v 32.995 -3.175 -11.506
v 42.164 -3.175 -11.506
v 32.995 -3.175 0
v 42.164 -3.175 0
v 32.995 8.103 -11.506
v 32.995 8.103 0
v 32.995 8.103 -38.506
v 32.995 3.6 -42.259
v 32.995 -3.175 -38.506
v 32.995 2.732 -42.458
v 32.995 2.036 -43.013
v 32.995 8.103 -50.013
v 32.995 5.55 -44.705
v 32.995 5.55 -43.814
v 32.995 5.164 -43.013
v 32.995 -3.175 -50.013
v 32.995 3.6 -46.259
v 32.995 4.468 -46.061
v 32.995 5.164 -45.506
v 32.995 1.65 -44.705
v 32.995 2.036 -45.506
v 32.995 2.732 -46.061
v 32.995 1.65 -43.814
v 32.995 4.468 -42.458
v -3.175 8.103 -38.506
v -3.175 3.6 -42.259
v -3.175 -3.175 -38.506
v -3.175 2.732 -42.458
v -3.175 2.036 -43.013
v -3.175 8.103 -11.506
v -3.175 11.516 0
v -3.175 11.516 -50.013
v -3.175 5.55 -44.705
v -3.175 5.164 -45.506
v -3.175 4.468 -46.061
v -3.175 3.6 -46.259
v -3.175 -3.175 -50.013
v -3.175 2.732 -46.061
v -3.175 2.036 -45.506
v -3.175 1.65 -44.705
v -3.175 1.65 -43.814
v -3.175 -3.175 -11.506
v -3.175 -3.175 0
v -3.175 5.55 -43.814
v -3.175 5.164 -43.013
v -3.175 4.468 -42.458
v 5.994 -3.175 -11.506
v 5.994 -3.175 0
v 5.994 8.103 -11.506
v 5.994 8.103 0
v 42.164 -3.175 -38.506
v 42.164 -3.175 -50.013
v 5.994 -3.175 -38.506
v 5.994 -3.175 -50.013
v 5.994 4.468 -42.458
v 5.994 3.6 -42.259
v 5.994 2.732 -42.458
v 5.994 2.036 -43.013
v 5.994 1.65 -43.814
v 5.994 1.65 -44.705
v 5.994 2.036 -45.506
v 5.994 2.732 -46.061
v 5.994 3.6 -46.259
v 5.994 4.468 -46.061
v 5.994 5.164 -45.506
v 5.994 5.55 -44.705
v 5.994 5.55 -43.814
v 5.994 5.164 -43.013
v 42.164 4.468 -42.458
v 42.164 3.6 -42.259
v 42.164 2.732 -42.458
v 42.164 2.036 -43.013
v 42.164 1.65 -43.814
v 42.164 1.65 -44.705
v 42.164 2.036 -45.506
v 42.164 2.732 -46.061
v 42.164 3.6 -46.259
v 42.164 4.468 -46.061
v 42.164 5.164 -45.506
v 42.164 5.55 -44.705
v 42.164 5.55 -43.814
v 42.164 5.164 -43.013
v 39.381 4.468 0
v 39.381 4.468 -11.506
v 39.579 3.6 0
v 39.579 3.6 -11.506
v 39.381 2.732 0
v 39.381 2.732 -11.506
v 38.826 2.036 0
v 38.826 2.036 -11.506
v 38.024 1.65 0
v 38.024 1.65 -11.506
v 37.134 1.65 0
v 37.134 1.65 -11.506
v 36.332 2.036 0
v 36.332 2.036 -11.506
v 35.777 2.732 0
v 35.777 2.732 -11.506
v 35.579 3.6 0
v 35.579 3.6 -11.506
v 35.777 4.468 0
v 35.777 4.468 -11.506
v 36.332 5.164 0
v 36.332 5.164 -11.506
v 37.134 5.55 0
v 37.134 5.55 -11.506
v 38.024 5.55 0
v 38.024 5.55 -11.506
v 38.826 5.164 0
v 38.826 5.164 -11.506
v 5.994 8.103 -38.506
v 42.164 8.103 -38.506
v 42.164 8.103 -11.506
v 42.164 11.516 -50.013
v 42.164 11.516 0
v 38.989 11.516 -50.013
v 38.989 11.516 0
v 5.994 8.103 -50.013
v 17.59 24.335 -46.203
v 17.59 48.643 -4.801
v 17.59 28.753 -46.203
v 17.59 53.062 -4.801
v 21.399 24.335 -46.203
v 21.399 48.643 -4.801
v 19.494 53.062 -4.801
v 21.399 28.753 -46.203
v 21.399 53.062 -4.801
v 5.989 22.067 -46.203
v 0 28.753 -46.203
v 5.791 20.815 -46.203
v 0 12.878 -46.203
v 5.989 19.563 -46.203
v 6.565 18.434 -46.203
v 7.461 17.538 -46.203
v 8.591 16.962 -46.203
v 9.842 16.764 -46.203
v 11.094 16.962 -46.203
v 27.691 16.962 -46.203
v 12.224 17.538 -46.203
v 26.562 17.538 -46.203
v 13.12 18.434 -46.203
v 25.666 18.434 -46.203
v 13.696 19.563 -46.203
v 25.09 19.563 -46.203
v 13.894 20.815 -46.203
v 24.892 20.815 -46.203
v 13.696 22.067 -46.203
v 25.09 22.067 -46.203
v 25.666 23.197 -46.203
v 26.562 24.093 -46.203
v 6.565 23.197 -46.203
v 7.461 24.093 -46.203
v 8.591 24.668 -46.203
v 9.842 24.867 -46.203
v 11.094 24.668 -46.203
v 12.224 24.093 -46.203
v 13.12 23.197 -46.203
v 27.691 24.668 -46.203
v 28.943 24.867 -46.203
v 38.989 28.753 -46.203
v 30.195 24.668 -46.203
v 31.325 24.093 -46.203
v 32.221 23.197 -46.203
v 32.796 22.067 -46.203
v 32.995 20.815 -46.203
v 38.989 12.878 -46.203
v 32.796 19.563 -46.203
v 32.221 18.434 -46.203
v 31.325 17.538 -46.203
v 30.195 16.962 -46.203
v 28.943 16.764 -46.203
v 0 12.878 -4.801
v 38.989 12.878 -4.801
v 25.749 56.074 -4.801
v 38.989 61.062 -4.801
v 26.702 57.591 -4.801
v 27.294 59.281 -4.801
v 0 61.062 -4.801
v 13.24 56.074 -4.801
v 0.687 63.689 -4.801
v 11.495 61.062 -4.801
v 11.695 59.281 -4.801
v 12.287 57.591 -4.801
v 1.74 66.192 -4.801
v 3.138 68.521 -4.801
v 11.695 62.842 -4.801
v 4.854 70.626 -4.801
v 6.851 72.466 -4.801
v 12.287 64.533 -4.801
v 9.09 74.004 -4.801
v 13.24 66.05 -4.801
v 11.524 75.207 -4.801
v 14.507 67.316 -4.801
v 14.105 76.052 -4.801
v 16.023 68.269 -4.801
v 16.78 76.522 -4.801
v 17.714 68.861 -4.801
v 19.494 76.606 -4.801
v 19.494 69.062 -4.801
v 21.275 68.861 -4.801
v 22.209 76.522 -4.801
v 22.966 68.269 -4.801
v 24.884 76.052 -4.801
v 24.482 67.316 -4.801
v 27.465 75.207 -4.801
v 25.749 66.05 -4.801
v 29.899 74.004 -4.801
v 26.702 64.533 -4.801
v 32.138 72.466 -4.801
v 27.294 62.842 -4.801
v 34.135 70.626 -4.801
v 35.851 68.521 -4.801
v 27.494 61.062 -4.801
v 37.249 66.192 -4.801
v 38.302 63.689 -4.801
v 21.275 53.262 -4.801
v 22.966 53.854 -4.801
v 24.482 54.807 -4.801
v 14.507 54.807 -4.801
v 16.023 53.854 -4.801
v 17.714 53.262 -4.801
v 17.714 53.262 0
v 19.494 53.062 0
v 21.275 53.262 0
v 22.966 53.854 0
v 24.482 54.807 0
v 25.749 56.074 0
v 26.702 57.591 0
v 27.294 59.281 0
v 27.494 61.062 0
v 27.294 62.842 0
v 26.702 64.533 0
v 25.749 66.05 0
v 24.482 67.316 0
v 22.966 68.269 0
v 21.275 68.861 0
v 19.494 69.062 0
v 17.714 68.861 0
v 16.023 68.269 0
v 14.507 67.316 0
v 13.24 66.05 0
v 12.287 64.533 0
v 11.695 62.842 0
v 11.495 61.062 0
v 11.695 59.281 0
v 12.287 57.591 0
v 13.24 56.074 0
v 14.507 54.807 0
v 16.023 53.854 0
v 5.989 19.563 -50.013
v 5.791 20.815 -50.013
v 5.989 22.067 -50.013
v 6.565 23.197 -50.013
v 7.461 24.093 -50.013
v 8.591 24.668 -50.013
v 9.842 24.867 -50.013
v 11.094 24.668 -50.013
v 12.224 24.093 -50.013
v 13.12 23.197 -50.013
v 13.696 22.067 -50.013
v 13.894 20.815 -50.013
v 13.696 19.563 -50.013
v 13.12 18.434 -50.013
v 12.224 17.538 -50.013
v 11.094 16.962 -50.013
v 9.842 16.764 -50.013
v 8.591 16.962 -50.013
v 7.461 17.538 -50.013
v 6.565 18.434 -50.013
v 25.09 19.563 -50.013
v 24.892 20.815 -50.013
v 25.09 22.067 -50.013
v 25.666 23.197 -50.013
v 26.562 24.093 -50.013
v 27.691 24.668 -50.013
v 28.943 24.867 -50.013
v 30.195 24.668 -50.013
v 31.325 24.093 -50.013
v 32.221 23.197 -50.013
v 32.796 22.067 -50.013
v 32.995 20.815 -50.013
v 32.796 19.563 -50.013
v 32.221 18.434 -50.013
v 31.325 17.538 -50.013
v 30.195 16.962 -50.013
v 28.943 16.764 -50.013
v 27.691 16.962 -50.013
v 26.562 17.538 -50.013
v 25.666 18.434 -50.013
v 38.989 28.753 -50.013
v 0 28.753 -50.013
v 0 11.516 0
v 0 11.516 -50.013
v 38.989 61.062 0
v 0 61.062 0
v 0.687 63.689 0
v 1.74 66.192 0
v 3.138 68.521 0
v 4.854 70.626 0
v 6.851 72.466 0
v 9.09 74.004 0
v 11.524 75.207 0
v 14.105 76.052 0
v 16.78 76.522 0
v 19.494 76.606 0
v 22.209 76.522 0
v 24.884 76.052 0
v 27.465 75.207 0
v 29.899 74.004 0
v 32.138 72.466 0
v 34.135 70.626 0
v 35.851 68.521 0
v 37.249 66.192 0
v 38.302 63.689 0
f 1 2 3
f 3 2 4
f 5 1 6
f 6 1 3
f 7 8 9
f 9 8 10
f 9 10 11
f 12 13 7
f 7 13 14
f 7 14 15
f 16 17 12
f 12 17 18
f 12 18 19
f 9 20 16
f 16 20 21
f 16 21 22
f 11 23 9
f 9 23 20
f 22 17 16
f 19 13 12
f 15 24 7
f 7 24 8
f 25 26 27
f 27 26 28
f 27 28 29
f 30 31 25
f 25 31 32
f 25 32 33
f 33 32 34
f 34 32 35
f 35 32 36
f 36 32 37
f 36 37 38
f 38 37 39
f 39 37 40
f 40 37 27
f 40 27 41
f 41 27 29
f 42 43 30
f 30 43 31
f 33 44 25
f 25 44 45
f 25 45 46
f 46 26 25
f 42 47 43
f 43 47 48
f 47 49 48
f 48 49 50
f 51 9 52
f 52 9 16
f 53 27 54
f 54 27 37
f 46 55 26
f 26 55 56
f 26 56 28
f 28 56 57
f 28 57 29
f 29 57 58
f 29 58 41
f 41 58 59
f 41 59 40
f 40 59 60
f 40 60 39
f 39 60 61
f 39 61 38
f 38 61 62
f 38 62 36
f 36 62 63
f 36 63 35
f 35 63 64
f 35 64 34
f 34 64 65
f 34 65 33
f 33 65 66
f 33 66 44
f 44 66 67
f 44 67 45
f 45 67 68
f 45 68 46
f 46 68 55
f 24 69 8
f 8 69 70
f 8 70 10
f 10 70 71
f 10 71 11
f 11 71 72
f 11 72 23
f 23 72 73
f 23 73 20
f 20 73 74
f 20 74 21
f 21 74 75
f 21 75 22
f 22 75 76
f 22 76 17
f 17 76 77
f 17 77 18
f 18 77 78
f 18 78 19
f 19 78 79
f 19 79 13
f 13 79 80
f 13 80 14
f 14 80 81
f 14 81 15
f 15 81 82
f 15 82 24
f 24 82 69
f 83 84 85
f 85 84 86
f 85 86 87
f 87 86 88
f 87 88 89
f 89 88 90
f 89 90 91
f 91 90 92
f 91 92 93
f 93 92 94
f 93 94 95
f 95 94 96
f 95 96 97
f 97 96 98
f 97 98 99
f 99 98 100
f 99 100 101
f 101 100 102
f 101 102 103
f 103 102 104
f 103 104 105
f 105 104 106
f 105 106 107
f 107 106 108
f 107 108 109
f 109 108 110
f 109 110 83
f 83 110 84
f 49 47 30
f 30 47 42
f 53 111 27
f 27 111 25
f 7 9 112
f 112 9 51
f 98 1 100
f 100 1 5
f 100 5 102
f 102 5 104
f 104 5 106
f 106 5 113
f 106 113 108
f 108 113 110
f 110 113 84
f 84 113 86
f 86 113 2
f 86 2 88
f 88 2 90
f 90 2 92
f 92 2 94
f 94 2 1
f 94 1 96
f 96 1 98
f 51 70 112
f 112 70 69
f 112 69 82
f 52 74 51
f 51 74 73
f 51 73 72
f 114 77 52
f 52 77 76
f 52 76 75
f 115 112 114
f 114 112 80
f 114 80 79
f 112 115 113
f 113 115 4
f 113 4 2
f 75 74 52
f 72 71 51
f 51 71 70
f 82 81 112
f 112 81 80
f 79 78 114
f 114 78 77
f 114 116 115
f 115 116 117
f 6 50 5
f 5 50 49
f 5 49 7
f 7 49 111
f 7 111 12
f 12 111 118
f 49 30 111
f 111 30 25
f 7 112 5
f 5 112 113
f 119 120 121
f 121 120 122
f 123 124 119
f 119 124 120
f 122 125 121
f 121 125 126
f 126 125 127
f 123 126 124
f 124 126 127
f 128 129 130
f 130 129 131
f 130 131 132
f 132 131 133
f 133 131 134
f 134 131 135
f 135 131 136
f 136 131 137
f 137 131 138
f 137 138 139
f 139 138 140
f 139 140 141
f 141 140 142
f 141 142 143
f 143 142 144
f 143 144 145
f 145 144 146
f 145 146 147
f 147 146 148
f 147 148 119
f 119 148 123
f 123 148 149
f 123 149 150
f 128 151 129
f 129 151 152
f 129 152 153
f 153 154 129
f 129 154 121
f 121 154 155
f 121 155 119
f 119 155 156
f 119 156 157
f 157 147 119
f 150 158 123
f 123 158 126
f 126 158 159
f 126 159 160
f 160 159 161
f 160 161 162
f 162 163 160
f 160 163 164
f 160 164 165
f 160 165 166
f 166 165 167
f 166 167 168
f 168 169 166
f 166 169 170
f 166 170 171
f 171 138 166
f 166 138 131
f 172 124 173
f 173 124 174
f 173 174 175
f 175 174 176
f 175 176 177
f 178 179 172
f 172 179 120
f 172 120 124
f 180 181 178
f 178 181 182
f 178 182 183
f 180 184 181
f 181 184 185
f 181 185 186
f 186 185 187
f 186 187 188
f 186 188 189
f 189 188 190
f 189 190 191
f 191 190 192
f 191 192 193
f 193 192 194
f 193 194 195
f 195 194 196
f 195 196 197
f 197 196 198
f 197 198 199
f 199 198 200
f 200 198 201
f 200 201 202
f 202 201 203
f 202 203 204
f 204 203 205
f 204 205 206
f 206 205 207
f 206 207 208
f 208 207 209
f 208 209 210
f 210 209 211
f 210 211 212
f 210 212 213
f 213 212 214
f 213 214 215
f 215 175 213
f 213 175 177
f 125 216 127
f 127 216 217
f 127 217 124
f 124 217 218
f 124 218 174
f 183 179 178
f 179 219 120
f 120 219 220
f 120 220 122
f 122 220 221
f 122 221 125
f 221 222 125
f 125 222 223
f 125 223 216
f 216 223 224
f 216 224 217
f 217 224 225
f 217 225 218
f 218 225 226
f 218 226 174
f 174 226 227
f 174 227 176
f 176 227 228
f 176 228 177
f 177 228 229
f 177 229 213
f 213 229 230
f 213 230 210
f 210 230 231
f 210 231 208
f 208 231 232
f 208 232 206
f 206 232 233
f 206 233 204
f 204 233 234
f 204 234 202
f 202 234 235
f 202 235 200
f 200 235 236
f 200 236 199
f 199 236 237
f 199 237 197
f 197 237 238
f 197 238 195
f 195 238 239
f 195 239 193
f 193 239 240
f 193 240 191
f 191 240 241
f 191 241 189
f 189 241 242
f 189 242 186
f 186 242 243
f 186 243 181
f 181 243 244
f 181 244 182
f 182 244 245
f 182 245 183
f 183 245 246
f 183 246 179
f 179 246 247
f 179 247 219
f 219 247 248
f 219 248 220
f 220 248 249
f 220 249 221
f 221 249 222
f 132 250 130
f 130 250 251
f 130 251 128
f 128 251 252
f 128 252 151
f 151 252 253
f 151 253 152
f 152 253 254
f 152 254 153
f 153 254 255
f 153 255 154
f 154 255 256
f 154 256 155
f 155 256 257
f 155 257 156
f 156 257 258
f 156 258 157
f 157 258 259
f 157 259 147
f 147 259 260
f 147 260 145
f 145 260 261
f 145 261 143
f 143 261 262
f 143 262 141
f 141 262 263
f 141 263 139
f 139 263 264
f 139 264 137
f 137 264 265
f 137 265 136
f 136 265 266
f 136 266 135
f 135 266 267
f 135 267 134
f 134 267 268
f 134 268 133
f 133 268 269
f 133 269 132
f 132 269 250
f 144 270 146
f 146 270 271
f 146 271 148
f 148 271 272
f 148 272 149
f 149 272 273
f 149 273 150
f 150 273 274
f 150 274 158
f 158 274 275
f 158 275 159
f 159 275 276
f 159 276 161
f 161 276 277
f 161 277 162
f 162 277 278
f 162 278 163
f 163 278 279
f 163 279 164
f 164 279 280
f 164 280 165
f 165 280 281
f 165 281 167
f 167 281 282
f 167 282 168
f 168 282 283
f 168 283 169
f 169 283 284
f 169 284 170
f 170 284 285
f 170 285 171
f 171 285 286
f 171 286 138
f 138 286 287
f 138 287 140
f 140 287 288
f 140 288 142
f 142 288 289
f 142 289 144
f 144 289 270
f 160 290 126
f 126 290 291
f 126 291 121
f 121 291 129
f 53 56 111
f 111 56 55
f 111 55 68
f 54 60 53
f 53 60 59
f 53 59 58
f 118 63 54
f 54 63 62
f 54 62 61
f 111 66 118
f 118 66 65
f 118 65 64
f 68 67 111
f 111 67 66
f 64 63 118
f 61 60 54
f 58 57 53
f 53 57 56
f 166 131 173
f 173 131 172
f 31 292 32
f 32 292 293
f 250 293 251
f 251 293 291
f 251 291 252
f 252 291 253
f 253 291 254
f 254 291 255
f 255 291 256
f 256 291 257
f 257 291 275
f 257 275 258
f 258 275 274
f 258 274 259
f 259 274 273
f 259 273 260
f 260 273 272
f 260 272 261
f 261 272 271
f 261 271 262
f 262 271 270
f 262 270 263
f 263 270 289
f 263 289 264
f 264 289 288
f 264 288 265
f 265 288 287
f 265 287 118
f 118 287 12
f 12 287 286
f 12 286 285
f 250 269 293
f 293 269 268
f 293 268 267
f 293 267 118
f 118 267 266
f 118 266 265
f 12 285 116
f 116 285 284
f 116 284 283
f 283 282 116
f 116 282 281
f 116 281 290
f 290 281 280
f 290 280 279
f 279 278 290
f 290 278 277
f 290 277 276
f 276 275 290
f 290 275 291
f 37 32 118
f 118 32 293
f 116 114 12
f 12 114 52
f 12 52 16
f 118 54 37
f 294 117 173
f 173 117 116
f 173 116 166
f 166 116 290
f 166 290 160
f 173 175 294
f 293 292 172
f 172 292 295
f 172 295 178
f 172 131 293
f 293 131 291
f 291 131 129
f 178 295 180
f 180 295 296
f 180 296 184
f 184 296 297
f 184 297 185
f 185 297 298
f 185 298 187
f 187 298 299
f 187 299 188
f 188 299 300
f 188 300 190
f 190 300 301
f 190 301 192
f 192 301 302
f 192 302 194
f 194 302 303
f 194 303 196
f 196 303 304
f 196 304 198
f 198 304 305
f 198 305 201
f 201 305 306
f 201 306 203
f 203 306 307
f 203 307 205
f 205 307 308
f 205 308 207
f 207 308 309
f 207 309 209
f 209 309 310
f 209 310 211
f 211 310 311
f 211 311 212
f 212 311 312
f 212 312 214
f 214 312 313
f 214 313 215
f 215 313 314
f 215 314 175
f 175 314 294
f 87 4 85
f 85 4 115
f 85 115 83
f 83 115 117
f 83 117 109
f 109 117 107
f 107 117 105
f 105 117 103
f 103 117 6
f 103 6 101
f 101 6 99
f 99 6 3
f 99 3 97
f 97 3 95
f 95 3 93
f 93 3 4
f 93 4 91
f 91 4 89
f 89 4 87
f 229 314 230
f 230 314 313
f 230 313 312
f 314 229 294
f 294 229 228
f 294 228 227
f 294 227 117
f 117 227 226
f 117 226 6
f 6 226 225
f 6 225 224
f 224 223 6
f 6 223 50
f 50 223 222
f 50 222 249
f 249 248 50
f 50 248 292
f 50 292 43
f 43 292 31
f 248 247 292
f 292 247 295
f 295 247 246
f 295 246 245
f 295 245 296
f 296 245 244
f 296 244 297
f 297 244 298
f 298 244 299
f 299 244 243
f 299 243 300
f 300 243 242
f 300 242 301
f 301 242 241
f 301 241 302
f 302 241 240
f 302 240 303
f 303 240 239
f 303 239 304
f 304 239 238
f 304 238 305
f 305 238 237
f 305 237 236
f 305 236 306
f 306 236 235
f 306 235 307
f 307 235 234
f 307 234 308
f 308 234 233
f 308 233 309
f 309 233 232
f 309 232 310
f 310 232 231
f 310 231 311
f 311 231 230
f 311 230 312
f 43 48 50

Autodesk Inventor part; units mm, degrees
ref_plane "YZ Plane" through (0, 0, 0) normal (1, 0, 0) x (0, 1, 0)
ref_plane "XZ Plane" through (0, 0, 0) normal (0, 1, 0) x (-1, 0, 0)
sketch "Sketch1" plane through (0, 0, 0) normal (0, 0, 1) x (1, 0, 0)
  line L0 (0, 0) -> (38.989, 0)
  line L1 (0, 8.1026) -> (0, 61.0616)
  line L2 (38.989, 8.1026) -> (38.989, 61.0616)
  arc A0 (19.4945, 76.6064) -> (0, 61.0616) centre (18.7276, 57.5718) ccw
  arc A1 (38.989, 61.0616) -> (19.4945, 76.6064) centre (20.2614, 57.5718) ccw
  line L3 (0, 8.1026) -> (38.989, 8.1026)
  line L4 (0, 61.0616) -> (38.989, 61.0616)
  dimension "d3" = 19.05
  dimension "d4" = 19.05
extrude "Extrusion1" add sketch "Sketch1" against normal blind 4.8006
sketch "Sketch2" plane through (0, 0, 0) normal (0, 0, 1) x (1, 0, 0)
  line L0 (38.989, 8.1026) -> (0, 8.1026) projected
  line L1 (38.989, 61.0616) -> (38.989, 8.1026) projected
  line L2 (5.9944, 8.1026) -> (32.9946, 8.1026)
  line L3 (38.989, 11.5157) -> (38.989, 12.8778)
  line L4 (38.989, 12.8778) -> (0, 12.8778)
  line L5 (0, 12.8778) -> (0, 11.5157)
  line L6 (5.9944, 8.1026) -> (5.9944, 0)
  line L7 (5.9944, 0) -> (0, 0)
  line L8 (32.9946, 8.1026) -> (32.9946, 0)
  line L9 (32.9946, 0) -> (38.989, 0)
  line L10 (38.989, 0) -> (42.164, 0)
  line L11 (42.164, 0) -> (42.164, 11.5157)
  line L12 (42.164, 11.5157) -> (38.989, 11.5157)
  line L13 (38.989, 12.8778) -> (38.989, 11.5157)
  line L14 (0, 0) -> (-3.175, 0)
  line L15 (-3.175, 0) -> (-3.175, 11.5157)
  line L16 (-3.175, 11.5157) -> (0, 11.5157)
extrude "Extrusion2" add sketch "Sketch2" against normal blind 50.0126 contours L0 L6 L7 L14 L15 L16 L5 L4 L1
sketch "Sketch3" plane through (0, 0, -50.0126) normal (0, 0, -1) x (-1, 0, 0)
  line L0 (-38.989, 12.8778) -> (0, 12.8778) projected
  line L1 (-4.4958, 12.8778) -> (-34.4932, 12.8778)
  line L2 (-34.4932, 28.7528) -> (-4.4958, 28.7528)
  line L3 (-38.989, 8.1026) -> (-38.989, 61.0616) projected
  circle A0 centre (-28.9433, 20.8153) radius 4.0513
  circle A1 centre (-9.8425, 20.8153) radius 4.0513
  line L4 (-34.4932, 12.8778) -> (-38.989, 12.8778)
  line L5 (-38.989, 12.8778) -> (-38.989, 28.7528)
  line L6 (-38.989, 28.7528) -> (-34.4932, 28.7528)
  line L7 (-4.4958, 28.7528) -> (0, 28.7528)
  line L8 (0, 12.8778) -> (0, 61.0616) projected
  line L9 (0, 28.7528) -> (0, 12.8778)
  line L10 (0, 12.8778) -> (-4.4958, 12.8778)
  point P0 (0, 0)
  point P1 (-38.989, 0)
  dimension "d17" = 8.1026
  dimension "d19" = 8.1026
extrude "Extrusion3" add sketch "Sketch3" against normal blind 3.81
ref_plane "Work Plane1" through (19.4945, 61.0616, 0) normal (1, 0, 0) x (0, 0, -1)
sketch "Sketch6" plane through (0, 0, 0) normal (0, 0, 1) x (1, 0, 0)
  line L0 (0, 61.0616) -> (0, 0) projected
  arc A0 (38.989, 61.0616) -> (19.4945, 76.6064) centre (20.2614, 57.5718) ccw projected
  circle A1 centre (19.4945, 61.0616) radius 8
  dimension "d22" = 16
extrude "Extrusion4" cut sketch "Sketch6" against normal blind 5.3975
sketch "Sketch7" plane through (19.4945, 61.0616, 0) normal (1, 0, 0) x (0, 0, -1)
  line L0 (0, -8) -> (4.8006, -8) projected
  line L1 (4.8006, -8) -> (46.2026, -32.3088)
  line L2 (46.2026, -32.3088) -> (46.2026, -48.1838)
  line L3 (4.8006, 0) -> (4.8006, -48.1838) projected
  line L4 (46.2026, -44.2976) -> (46.2026, -36.195) projected
  line L5 (46.2026, -36.727) -> (4.8006, -12.4182)
  point P0 (0, -61.0616)
extrude "Extrusion5" add sketch "Sketch7" along normal mid plane 3.81
sketch "Sketch11" plane through (38.989, 61.0616, 0) normal (1, 0, 0) x (0, 0, -1)
  line L0 (0, -61.0616) -> (50.0126, -61.0616) projected
  line L1 (50.0126, -48.1838) -> (50.0126, -61.0616) projected
  circle A0 centre (25.0063, -57.2836) radius 2
  dimension "d54" = 4
extrude "Extrusion8" cut sketch "Sketch11" against normal blind 7.9375
extrude "Extrusion9" add sketch "Sketch2" against normal up to surface (50.0126 mm away) contours L1 L12 L11 L10 L9 L8 L0
sketch "Sketch12" plane through (42.164, 0, 0) normal (1, 0, 0) x (0, 0, -1)
  line L0 (0, 0) -> (50.0126, 0) projected
  line L1 (25.0063, 8.1026) -> (11.5062, 8.1026)
  line L2 (11.5062, 8.1026) -> (11.5062, 0)
  line L3 (25.0063, 8.1026) -> (38.5064, 8.1026)
  line L4 (0, 8.1026) -> (50.0126, 8.1026) projected
  line L5 (38.5064, 8.1026) -> (38.5064, 0)
  line L6 (11.5062, 0) -> (38.5064, 0)
  dimension "d63" = 13.5001
  dimension "d64" = 13.5001
extrude "Extrusion10" cut sketch "Sketch12" against normal up to surface (45.339 mm away)
sketch "Sketch13" plane through (0, 0, 0) normal (0, 0, 1) x (1, 0, 0)
  circle A0 centre (37.5793, 3.6) radius 2
  line L0 (32.9946, 0) -> (42.164, 0) projected
  line L1 (37.5793, 0) -> (37.5793, 1.6)
  line L2 (37.5793, 0) -> (39.1793, 0) construction
  point P0 (0, 0)
  dimension "d67" = 4
  dimension "d68" = 1.6
  dimension "d69" = 90
extrude "Extrusion11" cut sketch "Sketch13" against normal up to surface (11.5062 mm away)
sketch "Sketch14" plane through (42.164, 0, 0) normal (1, 0, 0) x (0, 0, -1)
  circle A0 centre (44.2595, 3.6) radius 2
  point P0 (0, 0)
  point P1 (38.5064, 0)
  point P2 (50.0126, 0)
  dimension "d73" = 4
extrude "Extrusion12" cut sketch "Sketch14" against normal up to surface (45.339 mm away)
sketch "Sketch15" plane through (0, 0, 0) normal (0, 0, 1) x (1, 0, 0)
  line L0 (-3.175, 0) -> (5.9944, 0) projected
  line L1 (-3.175, 0) -> (5.9944, 0)
  line L2 (5.9944, 0) -> (5.9944, -3.175)
  line L3 (5.9944, -3.175) -> (-3.175, -3.175)
  line L4 (-3.175, -3.175) -> (-3.175, 0)
  line L5 (32.9946, 0) -> (42.164, 0) projected
  line L6 (32.9946, 0) -> (42.164, 0)
  line L7 (42.164, 0) -> (42.164, -3.175)
  line L8 (42.164, -3.175) -> (32.9946, -3.175)
  line L9 (32.9946, -3.175) -> (32.9946, 0)
  point P0 (0, 0)
  dimension "d76" = 3.175
  dimension "d77" = 3.175
extrude "Extrusion13" add sketch "Sketch15" against normal up to surface (50.0126 mm away)
sketch "Sketch16" plane through (-3.175, 11.5157, -50.0126) normal (-1, 0, 0) x (0, 0, 1)
  line L0 (38.5064, -11.5157) -> (11.5062, -11.5157) projected
  line L1 (38.5064, -11.5157) -> (38.5064, -14.6907)
  line L2 (50.0126, -14.6907) -> (0, -14.6907) projected
  line L3 (11.5062, -11.5157) -> (38.5064, -11.5157)
  line L4 (38.5064, -11.5157) -> (38.5064, -14.6907)
  line L5 (38.5064, -14.6907) -> (11.5062, -14.6907)
  line L6 (11.5062, -14.6907) -> (11.5062, -11.5157)
  point P0 (50.0126, -11.5157)
extrude "Extrusion14" cut sketch "Sketch16" against normal up to surface (45.339 mm away)
properties part number "Transmitter + Reciever"
